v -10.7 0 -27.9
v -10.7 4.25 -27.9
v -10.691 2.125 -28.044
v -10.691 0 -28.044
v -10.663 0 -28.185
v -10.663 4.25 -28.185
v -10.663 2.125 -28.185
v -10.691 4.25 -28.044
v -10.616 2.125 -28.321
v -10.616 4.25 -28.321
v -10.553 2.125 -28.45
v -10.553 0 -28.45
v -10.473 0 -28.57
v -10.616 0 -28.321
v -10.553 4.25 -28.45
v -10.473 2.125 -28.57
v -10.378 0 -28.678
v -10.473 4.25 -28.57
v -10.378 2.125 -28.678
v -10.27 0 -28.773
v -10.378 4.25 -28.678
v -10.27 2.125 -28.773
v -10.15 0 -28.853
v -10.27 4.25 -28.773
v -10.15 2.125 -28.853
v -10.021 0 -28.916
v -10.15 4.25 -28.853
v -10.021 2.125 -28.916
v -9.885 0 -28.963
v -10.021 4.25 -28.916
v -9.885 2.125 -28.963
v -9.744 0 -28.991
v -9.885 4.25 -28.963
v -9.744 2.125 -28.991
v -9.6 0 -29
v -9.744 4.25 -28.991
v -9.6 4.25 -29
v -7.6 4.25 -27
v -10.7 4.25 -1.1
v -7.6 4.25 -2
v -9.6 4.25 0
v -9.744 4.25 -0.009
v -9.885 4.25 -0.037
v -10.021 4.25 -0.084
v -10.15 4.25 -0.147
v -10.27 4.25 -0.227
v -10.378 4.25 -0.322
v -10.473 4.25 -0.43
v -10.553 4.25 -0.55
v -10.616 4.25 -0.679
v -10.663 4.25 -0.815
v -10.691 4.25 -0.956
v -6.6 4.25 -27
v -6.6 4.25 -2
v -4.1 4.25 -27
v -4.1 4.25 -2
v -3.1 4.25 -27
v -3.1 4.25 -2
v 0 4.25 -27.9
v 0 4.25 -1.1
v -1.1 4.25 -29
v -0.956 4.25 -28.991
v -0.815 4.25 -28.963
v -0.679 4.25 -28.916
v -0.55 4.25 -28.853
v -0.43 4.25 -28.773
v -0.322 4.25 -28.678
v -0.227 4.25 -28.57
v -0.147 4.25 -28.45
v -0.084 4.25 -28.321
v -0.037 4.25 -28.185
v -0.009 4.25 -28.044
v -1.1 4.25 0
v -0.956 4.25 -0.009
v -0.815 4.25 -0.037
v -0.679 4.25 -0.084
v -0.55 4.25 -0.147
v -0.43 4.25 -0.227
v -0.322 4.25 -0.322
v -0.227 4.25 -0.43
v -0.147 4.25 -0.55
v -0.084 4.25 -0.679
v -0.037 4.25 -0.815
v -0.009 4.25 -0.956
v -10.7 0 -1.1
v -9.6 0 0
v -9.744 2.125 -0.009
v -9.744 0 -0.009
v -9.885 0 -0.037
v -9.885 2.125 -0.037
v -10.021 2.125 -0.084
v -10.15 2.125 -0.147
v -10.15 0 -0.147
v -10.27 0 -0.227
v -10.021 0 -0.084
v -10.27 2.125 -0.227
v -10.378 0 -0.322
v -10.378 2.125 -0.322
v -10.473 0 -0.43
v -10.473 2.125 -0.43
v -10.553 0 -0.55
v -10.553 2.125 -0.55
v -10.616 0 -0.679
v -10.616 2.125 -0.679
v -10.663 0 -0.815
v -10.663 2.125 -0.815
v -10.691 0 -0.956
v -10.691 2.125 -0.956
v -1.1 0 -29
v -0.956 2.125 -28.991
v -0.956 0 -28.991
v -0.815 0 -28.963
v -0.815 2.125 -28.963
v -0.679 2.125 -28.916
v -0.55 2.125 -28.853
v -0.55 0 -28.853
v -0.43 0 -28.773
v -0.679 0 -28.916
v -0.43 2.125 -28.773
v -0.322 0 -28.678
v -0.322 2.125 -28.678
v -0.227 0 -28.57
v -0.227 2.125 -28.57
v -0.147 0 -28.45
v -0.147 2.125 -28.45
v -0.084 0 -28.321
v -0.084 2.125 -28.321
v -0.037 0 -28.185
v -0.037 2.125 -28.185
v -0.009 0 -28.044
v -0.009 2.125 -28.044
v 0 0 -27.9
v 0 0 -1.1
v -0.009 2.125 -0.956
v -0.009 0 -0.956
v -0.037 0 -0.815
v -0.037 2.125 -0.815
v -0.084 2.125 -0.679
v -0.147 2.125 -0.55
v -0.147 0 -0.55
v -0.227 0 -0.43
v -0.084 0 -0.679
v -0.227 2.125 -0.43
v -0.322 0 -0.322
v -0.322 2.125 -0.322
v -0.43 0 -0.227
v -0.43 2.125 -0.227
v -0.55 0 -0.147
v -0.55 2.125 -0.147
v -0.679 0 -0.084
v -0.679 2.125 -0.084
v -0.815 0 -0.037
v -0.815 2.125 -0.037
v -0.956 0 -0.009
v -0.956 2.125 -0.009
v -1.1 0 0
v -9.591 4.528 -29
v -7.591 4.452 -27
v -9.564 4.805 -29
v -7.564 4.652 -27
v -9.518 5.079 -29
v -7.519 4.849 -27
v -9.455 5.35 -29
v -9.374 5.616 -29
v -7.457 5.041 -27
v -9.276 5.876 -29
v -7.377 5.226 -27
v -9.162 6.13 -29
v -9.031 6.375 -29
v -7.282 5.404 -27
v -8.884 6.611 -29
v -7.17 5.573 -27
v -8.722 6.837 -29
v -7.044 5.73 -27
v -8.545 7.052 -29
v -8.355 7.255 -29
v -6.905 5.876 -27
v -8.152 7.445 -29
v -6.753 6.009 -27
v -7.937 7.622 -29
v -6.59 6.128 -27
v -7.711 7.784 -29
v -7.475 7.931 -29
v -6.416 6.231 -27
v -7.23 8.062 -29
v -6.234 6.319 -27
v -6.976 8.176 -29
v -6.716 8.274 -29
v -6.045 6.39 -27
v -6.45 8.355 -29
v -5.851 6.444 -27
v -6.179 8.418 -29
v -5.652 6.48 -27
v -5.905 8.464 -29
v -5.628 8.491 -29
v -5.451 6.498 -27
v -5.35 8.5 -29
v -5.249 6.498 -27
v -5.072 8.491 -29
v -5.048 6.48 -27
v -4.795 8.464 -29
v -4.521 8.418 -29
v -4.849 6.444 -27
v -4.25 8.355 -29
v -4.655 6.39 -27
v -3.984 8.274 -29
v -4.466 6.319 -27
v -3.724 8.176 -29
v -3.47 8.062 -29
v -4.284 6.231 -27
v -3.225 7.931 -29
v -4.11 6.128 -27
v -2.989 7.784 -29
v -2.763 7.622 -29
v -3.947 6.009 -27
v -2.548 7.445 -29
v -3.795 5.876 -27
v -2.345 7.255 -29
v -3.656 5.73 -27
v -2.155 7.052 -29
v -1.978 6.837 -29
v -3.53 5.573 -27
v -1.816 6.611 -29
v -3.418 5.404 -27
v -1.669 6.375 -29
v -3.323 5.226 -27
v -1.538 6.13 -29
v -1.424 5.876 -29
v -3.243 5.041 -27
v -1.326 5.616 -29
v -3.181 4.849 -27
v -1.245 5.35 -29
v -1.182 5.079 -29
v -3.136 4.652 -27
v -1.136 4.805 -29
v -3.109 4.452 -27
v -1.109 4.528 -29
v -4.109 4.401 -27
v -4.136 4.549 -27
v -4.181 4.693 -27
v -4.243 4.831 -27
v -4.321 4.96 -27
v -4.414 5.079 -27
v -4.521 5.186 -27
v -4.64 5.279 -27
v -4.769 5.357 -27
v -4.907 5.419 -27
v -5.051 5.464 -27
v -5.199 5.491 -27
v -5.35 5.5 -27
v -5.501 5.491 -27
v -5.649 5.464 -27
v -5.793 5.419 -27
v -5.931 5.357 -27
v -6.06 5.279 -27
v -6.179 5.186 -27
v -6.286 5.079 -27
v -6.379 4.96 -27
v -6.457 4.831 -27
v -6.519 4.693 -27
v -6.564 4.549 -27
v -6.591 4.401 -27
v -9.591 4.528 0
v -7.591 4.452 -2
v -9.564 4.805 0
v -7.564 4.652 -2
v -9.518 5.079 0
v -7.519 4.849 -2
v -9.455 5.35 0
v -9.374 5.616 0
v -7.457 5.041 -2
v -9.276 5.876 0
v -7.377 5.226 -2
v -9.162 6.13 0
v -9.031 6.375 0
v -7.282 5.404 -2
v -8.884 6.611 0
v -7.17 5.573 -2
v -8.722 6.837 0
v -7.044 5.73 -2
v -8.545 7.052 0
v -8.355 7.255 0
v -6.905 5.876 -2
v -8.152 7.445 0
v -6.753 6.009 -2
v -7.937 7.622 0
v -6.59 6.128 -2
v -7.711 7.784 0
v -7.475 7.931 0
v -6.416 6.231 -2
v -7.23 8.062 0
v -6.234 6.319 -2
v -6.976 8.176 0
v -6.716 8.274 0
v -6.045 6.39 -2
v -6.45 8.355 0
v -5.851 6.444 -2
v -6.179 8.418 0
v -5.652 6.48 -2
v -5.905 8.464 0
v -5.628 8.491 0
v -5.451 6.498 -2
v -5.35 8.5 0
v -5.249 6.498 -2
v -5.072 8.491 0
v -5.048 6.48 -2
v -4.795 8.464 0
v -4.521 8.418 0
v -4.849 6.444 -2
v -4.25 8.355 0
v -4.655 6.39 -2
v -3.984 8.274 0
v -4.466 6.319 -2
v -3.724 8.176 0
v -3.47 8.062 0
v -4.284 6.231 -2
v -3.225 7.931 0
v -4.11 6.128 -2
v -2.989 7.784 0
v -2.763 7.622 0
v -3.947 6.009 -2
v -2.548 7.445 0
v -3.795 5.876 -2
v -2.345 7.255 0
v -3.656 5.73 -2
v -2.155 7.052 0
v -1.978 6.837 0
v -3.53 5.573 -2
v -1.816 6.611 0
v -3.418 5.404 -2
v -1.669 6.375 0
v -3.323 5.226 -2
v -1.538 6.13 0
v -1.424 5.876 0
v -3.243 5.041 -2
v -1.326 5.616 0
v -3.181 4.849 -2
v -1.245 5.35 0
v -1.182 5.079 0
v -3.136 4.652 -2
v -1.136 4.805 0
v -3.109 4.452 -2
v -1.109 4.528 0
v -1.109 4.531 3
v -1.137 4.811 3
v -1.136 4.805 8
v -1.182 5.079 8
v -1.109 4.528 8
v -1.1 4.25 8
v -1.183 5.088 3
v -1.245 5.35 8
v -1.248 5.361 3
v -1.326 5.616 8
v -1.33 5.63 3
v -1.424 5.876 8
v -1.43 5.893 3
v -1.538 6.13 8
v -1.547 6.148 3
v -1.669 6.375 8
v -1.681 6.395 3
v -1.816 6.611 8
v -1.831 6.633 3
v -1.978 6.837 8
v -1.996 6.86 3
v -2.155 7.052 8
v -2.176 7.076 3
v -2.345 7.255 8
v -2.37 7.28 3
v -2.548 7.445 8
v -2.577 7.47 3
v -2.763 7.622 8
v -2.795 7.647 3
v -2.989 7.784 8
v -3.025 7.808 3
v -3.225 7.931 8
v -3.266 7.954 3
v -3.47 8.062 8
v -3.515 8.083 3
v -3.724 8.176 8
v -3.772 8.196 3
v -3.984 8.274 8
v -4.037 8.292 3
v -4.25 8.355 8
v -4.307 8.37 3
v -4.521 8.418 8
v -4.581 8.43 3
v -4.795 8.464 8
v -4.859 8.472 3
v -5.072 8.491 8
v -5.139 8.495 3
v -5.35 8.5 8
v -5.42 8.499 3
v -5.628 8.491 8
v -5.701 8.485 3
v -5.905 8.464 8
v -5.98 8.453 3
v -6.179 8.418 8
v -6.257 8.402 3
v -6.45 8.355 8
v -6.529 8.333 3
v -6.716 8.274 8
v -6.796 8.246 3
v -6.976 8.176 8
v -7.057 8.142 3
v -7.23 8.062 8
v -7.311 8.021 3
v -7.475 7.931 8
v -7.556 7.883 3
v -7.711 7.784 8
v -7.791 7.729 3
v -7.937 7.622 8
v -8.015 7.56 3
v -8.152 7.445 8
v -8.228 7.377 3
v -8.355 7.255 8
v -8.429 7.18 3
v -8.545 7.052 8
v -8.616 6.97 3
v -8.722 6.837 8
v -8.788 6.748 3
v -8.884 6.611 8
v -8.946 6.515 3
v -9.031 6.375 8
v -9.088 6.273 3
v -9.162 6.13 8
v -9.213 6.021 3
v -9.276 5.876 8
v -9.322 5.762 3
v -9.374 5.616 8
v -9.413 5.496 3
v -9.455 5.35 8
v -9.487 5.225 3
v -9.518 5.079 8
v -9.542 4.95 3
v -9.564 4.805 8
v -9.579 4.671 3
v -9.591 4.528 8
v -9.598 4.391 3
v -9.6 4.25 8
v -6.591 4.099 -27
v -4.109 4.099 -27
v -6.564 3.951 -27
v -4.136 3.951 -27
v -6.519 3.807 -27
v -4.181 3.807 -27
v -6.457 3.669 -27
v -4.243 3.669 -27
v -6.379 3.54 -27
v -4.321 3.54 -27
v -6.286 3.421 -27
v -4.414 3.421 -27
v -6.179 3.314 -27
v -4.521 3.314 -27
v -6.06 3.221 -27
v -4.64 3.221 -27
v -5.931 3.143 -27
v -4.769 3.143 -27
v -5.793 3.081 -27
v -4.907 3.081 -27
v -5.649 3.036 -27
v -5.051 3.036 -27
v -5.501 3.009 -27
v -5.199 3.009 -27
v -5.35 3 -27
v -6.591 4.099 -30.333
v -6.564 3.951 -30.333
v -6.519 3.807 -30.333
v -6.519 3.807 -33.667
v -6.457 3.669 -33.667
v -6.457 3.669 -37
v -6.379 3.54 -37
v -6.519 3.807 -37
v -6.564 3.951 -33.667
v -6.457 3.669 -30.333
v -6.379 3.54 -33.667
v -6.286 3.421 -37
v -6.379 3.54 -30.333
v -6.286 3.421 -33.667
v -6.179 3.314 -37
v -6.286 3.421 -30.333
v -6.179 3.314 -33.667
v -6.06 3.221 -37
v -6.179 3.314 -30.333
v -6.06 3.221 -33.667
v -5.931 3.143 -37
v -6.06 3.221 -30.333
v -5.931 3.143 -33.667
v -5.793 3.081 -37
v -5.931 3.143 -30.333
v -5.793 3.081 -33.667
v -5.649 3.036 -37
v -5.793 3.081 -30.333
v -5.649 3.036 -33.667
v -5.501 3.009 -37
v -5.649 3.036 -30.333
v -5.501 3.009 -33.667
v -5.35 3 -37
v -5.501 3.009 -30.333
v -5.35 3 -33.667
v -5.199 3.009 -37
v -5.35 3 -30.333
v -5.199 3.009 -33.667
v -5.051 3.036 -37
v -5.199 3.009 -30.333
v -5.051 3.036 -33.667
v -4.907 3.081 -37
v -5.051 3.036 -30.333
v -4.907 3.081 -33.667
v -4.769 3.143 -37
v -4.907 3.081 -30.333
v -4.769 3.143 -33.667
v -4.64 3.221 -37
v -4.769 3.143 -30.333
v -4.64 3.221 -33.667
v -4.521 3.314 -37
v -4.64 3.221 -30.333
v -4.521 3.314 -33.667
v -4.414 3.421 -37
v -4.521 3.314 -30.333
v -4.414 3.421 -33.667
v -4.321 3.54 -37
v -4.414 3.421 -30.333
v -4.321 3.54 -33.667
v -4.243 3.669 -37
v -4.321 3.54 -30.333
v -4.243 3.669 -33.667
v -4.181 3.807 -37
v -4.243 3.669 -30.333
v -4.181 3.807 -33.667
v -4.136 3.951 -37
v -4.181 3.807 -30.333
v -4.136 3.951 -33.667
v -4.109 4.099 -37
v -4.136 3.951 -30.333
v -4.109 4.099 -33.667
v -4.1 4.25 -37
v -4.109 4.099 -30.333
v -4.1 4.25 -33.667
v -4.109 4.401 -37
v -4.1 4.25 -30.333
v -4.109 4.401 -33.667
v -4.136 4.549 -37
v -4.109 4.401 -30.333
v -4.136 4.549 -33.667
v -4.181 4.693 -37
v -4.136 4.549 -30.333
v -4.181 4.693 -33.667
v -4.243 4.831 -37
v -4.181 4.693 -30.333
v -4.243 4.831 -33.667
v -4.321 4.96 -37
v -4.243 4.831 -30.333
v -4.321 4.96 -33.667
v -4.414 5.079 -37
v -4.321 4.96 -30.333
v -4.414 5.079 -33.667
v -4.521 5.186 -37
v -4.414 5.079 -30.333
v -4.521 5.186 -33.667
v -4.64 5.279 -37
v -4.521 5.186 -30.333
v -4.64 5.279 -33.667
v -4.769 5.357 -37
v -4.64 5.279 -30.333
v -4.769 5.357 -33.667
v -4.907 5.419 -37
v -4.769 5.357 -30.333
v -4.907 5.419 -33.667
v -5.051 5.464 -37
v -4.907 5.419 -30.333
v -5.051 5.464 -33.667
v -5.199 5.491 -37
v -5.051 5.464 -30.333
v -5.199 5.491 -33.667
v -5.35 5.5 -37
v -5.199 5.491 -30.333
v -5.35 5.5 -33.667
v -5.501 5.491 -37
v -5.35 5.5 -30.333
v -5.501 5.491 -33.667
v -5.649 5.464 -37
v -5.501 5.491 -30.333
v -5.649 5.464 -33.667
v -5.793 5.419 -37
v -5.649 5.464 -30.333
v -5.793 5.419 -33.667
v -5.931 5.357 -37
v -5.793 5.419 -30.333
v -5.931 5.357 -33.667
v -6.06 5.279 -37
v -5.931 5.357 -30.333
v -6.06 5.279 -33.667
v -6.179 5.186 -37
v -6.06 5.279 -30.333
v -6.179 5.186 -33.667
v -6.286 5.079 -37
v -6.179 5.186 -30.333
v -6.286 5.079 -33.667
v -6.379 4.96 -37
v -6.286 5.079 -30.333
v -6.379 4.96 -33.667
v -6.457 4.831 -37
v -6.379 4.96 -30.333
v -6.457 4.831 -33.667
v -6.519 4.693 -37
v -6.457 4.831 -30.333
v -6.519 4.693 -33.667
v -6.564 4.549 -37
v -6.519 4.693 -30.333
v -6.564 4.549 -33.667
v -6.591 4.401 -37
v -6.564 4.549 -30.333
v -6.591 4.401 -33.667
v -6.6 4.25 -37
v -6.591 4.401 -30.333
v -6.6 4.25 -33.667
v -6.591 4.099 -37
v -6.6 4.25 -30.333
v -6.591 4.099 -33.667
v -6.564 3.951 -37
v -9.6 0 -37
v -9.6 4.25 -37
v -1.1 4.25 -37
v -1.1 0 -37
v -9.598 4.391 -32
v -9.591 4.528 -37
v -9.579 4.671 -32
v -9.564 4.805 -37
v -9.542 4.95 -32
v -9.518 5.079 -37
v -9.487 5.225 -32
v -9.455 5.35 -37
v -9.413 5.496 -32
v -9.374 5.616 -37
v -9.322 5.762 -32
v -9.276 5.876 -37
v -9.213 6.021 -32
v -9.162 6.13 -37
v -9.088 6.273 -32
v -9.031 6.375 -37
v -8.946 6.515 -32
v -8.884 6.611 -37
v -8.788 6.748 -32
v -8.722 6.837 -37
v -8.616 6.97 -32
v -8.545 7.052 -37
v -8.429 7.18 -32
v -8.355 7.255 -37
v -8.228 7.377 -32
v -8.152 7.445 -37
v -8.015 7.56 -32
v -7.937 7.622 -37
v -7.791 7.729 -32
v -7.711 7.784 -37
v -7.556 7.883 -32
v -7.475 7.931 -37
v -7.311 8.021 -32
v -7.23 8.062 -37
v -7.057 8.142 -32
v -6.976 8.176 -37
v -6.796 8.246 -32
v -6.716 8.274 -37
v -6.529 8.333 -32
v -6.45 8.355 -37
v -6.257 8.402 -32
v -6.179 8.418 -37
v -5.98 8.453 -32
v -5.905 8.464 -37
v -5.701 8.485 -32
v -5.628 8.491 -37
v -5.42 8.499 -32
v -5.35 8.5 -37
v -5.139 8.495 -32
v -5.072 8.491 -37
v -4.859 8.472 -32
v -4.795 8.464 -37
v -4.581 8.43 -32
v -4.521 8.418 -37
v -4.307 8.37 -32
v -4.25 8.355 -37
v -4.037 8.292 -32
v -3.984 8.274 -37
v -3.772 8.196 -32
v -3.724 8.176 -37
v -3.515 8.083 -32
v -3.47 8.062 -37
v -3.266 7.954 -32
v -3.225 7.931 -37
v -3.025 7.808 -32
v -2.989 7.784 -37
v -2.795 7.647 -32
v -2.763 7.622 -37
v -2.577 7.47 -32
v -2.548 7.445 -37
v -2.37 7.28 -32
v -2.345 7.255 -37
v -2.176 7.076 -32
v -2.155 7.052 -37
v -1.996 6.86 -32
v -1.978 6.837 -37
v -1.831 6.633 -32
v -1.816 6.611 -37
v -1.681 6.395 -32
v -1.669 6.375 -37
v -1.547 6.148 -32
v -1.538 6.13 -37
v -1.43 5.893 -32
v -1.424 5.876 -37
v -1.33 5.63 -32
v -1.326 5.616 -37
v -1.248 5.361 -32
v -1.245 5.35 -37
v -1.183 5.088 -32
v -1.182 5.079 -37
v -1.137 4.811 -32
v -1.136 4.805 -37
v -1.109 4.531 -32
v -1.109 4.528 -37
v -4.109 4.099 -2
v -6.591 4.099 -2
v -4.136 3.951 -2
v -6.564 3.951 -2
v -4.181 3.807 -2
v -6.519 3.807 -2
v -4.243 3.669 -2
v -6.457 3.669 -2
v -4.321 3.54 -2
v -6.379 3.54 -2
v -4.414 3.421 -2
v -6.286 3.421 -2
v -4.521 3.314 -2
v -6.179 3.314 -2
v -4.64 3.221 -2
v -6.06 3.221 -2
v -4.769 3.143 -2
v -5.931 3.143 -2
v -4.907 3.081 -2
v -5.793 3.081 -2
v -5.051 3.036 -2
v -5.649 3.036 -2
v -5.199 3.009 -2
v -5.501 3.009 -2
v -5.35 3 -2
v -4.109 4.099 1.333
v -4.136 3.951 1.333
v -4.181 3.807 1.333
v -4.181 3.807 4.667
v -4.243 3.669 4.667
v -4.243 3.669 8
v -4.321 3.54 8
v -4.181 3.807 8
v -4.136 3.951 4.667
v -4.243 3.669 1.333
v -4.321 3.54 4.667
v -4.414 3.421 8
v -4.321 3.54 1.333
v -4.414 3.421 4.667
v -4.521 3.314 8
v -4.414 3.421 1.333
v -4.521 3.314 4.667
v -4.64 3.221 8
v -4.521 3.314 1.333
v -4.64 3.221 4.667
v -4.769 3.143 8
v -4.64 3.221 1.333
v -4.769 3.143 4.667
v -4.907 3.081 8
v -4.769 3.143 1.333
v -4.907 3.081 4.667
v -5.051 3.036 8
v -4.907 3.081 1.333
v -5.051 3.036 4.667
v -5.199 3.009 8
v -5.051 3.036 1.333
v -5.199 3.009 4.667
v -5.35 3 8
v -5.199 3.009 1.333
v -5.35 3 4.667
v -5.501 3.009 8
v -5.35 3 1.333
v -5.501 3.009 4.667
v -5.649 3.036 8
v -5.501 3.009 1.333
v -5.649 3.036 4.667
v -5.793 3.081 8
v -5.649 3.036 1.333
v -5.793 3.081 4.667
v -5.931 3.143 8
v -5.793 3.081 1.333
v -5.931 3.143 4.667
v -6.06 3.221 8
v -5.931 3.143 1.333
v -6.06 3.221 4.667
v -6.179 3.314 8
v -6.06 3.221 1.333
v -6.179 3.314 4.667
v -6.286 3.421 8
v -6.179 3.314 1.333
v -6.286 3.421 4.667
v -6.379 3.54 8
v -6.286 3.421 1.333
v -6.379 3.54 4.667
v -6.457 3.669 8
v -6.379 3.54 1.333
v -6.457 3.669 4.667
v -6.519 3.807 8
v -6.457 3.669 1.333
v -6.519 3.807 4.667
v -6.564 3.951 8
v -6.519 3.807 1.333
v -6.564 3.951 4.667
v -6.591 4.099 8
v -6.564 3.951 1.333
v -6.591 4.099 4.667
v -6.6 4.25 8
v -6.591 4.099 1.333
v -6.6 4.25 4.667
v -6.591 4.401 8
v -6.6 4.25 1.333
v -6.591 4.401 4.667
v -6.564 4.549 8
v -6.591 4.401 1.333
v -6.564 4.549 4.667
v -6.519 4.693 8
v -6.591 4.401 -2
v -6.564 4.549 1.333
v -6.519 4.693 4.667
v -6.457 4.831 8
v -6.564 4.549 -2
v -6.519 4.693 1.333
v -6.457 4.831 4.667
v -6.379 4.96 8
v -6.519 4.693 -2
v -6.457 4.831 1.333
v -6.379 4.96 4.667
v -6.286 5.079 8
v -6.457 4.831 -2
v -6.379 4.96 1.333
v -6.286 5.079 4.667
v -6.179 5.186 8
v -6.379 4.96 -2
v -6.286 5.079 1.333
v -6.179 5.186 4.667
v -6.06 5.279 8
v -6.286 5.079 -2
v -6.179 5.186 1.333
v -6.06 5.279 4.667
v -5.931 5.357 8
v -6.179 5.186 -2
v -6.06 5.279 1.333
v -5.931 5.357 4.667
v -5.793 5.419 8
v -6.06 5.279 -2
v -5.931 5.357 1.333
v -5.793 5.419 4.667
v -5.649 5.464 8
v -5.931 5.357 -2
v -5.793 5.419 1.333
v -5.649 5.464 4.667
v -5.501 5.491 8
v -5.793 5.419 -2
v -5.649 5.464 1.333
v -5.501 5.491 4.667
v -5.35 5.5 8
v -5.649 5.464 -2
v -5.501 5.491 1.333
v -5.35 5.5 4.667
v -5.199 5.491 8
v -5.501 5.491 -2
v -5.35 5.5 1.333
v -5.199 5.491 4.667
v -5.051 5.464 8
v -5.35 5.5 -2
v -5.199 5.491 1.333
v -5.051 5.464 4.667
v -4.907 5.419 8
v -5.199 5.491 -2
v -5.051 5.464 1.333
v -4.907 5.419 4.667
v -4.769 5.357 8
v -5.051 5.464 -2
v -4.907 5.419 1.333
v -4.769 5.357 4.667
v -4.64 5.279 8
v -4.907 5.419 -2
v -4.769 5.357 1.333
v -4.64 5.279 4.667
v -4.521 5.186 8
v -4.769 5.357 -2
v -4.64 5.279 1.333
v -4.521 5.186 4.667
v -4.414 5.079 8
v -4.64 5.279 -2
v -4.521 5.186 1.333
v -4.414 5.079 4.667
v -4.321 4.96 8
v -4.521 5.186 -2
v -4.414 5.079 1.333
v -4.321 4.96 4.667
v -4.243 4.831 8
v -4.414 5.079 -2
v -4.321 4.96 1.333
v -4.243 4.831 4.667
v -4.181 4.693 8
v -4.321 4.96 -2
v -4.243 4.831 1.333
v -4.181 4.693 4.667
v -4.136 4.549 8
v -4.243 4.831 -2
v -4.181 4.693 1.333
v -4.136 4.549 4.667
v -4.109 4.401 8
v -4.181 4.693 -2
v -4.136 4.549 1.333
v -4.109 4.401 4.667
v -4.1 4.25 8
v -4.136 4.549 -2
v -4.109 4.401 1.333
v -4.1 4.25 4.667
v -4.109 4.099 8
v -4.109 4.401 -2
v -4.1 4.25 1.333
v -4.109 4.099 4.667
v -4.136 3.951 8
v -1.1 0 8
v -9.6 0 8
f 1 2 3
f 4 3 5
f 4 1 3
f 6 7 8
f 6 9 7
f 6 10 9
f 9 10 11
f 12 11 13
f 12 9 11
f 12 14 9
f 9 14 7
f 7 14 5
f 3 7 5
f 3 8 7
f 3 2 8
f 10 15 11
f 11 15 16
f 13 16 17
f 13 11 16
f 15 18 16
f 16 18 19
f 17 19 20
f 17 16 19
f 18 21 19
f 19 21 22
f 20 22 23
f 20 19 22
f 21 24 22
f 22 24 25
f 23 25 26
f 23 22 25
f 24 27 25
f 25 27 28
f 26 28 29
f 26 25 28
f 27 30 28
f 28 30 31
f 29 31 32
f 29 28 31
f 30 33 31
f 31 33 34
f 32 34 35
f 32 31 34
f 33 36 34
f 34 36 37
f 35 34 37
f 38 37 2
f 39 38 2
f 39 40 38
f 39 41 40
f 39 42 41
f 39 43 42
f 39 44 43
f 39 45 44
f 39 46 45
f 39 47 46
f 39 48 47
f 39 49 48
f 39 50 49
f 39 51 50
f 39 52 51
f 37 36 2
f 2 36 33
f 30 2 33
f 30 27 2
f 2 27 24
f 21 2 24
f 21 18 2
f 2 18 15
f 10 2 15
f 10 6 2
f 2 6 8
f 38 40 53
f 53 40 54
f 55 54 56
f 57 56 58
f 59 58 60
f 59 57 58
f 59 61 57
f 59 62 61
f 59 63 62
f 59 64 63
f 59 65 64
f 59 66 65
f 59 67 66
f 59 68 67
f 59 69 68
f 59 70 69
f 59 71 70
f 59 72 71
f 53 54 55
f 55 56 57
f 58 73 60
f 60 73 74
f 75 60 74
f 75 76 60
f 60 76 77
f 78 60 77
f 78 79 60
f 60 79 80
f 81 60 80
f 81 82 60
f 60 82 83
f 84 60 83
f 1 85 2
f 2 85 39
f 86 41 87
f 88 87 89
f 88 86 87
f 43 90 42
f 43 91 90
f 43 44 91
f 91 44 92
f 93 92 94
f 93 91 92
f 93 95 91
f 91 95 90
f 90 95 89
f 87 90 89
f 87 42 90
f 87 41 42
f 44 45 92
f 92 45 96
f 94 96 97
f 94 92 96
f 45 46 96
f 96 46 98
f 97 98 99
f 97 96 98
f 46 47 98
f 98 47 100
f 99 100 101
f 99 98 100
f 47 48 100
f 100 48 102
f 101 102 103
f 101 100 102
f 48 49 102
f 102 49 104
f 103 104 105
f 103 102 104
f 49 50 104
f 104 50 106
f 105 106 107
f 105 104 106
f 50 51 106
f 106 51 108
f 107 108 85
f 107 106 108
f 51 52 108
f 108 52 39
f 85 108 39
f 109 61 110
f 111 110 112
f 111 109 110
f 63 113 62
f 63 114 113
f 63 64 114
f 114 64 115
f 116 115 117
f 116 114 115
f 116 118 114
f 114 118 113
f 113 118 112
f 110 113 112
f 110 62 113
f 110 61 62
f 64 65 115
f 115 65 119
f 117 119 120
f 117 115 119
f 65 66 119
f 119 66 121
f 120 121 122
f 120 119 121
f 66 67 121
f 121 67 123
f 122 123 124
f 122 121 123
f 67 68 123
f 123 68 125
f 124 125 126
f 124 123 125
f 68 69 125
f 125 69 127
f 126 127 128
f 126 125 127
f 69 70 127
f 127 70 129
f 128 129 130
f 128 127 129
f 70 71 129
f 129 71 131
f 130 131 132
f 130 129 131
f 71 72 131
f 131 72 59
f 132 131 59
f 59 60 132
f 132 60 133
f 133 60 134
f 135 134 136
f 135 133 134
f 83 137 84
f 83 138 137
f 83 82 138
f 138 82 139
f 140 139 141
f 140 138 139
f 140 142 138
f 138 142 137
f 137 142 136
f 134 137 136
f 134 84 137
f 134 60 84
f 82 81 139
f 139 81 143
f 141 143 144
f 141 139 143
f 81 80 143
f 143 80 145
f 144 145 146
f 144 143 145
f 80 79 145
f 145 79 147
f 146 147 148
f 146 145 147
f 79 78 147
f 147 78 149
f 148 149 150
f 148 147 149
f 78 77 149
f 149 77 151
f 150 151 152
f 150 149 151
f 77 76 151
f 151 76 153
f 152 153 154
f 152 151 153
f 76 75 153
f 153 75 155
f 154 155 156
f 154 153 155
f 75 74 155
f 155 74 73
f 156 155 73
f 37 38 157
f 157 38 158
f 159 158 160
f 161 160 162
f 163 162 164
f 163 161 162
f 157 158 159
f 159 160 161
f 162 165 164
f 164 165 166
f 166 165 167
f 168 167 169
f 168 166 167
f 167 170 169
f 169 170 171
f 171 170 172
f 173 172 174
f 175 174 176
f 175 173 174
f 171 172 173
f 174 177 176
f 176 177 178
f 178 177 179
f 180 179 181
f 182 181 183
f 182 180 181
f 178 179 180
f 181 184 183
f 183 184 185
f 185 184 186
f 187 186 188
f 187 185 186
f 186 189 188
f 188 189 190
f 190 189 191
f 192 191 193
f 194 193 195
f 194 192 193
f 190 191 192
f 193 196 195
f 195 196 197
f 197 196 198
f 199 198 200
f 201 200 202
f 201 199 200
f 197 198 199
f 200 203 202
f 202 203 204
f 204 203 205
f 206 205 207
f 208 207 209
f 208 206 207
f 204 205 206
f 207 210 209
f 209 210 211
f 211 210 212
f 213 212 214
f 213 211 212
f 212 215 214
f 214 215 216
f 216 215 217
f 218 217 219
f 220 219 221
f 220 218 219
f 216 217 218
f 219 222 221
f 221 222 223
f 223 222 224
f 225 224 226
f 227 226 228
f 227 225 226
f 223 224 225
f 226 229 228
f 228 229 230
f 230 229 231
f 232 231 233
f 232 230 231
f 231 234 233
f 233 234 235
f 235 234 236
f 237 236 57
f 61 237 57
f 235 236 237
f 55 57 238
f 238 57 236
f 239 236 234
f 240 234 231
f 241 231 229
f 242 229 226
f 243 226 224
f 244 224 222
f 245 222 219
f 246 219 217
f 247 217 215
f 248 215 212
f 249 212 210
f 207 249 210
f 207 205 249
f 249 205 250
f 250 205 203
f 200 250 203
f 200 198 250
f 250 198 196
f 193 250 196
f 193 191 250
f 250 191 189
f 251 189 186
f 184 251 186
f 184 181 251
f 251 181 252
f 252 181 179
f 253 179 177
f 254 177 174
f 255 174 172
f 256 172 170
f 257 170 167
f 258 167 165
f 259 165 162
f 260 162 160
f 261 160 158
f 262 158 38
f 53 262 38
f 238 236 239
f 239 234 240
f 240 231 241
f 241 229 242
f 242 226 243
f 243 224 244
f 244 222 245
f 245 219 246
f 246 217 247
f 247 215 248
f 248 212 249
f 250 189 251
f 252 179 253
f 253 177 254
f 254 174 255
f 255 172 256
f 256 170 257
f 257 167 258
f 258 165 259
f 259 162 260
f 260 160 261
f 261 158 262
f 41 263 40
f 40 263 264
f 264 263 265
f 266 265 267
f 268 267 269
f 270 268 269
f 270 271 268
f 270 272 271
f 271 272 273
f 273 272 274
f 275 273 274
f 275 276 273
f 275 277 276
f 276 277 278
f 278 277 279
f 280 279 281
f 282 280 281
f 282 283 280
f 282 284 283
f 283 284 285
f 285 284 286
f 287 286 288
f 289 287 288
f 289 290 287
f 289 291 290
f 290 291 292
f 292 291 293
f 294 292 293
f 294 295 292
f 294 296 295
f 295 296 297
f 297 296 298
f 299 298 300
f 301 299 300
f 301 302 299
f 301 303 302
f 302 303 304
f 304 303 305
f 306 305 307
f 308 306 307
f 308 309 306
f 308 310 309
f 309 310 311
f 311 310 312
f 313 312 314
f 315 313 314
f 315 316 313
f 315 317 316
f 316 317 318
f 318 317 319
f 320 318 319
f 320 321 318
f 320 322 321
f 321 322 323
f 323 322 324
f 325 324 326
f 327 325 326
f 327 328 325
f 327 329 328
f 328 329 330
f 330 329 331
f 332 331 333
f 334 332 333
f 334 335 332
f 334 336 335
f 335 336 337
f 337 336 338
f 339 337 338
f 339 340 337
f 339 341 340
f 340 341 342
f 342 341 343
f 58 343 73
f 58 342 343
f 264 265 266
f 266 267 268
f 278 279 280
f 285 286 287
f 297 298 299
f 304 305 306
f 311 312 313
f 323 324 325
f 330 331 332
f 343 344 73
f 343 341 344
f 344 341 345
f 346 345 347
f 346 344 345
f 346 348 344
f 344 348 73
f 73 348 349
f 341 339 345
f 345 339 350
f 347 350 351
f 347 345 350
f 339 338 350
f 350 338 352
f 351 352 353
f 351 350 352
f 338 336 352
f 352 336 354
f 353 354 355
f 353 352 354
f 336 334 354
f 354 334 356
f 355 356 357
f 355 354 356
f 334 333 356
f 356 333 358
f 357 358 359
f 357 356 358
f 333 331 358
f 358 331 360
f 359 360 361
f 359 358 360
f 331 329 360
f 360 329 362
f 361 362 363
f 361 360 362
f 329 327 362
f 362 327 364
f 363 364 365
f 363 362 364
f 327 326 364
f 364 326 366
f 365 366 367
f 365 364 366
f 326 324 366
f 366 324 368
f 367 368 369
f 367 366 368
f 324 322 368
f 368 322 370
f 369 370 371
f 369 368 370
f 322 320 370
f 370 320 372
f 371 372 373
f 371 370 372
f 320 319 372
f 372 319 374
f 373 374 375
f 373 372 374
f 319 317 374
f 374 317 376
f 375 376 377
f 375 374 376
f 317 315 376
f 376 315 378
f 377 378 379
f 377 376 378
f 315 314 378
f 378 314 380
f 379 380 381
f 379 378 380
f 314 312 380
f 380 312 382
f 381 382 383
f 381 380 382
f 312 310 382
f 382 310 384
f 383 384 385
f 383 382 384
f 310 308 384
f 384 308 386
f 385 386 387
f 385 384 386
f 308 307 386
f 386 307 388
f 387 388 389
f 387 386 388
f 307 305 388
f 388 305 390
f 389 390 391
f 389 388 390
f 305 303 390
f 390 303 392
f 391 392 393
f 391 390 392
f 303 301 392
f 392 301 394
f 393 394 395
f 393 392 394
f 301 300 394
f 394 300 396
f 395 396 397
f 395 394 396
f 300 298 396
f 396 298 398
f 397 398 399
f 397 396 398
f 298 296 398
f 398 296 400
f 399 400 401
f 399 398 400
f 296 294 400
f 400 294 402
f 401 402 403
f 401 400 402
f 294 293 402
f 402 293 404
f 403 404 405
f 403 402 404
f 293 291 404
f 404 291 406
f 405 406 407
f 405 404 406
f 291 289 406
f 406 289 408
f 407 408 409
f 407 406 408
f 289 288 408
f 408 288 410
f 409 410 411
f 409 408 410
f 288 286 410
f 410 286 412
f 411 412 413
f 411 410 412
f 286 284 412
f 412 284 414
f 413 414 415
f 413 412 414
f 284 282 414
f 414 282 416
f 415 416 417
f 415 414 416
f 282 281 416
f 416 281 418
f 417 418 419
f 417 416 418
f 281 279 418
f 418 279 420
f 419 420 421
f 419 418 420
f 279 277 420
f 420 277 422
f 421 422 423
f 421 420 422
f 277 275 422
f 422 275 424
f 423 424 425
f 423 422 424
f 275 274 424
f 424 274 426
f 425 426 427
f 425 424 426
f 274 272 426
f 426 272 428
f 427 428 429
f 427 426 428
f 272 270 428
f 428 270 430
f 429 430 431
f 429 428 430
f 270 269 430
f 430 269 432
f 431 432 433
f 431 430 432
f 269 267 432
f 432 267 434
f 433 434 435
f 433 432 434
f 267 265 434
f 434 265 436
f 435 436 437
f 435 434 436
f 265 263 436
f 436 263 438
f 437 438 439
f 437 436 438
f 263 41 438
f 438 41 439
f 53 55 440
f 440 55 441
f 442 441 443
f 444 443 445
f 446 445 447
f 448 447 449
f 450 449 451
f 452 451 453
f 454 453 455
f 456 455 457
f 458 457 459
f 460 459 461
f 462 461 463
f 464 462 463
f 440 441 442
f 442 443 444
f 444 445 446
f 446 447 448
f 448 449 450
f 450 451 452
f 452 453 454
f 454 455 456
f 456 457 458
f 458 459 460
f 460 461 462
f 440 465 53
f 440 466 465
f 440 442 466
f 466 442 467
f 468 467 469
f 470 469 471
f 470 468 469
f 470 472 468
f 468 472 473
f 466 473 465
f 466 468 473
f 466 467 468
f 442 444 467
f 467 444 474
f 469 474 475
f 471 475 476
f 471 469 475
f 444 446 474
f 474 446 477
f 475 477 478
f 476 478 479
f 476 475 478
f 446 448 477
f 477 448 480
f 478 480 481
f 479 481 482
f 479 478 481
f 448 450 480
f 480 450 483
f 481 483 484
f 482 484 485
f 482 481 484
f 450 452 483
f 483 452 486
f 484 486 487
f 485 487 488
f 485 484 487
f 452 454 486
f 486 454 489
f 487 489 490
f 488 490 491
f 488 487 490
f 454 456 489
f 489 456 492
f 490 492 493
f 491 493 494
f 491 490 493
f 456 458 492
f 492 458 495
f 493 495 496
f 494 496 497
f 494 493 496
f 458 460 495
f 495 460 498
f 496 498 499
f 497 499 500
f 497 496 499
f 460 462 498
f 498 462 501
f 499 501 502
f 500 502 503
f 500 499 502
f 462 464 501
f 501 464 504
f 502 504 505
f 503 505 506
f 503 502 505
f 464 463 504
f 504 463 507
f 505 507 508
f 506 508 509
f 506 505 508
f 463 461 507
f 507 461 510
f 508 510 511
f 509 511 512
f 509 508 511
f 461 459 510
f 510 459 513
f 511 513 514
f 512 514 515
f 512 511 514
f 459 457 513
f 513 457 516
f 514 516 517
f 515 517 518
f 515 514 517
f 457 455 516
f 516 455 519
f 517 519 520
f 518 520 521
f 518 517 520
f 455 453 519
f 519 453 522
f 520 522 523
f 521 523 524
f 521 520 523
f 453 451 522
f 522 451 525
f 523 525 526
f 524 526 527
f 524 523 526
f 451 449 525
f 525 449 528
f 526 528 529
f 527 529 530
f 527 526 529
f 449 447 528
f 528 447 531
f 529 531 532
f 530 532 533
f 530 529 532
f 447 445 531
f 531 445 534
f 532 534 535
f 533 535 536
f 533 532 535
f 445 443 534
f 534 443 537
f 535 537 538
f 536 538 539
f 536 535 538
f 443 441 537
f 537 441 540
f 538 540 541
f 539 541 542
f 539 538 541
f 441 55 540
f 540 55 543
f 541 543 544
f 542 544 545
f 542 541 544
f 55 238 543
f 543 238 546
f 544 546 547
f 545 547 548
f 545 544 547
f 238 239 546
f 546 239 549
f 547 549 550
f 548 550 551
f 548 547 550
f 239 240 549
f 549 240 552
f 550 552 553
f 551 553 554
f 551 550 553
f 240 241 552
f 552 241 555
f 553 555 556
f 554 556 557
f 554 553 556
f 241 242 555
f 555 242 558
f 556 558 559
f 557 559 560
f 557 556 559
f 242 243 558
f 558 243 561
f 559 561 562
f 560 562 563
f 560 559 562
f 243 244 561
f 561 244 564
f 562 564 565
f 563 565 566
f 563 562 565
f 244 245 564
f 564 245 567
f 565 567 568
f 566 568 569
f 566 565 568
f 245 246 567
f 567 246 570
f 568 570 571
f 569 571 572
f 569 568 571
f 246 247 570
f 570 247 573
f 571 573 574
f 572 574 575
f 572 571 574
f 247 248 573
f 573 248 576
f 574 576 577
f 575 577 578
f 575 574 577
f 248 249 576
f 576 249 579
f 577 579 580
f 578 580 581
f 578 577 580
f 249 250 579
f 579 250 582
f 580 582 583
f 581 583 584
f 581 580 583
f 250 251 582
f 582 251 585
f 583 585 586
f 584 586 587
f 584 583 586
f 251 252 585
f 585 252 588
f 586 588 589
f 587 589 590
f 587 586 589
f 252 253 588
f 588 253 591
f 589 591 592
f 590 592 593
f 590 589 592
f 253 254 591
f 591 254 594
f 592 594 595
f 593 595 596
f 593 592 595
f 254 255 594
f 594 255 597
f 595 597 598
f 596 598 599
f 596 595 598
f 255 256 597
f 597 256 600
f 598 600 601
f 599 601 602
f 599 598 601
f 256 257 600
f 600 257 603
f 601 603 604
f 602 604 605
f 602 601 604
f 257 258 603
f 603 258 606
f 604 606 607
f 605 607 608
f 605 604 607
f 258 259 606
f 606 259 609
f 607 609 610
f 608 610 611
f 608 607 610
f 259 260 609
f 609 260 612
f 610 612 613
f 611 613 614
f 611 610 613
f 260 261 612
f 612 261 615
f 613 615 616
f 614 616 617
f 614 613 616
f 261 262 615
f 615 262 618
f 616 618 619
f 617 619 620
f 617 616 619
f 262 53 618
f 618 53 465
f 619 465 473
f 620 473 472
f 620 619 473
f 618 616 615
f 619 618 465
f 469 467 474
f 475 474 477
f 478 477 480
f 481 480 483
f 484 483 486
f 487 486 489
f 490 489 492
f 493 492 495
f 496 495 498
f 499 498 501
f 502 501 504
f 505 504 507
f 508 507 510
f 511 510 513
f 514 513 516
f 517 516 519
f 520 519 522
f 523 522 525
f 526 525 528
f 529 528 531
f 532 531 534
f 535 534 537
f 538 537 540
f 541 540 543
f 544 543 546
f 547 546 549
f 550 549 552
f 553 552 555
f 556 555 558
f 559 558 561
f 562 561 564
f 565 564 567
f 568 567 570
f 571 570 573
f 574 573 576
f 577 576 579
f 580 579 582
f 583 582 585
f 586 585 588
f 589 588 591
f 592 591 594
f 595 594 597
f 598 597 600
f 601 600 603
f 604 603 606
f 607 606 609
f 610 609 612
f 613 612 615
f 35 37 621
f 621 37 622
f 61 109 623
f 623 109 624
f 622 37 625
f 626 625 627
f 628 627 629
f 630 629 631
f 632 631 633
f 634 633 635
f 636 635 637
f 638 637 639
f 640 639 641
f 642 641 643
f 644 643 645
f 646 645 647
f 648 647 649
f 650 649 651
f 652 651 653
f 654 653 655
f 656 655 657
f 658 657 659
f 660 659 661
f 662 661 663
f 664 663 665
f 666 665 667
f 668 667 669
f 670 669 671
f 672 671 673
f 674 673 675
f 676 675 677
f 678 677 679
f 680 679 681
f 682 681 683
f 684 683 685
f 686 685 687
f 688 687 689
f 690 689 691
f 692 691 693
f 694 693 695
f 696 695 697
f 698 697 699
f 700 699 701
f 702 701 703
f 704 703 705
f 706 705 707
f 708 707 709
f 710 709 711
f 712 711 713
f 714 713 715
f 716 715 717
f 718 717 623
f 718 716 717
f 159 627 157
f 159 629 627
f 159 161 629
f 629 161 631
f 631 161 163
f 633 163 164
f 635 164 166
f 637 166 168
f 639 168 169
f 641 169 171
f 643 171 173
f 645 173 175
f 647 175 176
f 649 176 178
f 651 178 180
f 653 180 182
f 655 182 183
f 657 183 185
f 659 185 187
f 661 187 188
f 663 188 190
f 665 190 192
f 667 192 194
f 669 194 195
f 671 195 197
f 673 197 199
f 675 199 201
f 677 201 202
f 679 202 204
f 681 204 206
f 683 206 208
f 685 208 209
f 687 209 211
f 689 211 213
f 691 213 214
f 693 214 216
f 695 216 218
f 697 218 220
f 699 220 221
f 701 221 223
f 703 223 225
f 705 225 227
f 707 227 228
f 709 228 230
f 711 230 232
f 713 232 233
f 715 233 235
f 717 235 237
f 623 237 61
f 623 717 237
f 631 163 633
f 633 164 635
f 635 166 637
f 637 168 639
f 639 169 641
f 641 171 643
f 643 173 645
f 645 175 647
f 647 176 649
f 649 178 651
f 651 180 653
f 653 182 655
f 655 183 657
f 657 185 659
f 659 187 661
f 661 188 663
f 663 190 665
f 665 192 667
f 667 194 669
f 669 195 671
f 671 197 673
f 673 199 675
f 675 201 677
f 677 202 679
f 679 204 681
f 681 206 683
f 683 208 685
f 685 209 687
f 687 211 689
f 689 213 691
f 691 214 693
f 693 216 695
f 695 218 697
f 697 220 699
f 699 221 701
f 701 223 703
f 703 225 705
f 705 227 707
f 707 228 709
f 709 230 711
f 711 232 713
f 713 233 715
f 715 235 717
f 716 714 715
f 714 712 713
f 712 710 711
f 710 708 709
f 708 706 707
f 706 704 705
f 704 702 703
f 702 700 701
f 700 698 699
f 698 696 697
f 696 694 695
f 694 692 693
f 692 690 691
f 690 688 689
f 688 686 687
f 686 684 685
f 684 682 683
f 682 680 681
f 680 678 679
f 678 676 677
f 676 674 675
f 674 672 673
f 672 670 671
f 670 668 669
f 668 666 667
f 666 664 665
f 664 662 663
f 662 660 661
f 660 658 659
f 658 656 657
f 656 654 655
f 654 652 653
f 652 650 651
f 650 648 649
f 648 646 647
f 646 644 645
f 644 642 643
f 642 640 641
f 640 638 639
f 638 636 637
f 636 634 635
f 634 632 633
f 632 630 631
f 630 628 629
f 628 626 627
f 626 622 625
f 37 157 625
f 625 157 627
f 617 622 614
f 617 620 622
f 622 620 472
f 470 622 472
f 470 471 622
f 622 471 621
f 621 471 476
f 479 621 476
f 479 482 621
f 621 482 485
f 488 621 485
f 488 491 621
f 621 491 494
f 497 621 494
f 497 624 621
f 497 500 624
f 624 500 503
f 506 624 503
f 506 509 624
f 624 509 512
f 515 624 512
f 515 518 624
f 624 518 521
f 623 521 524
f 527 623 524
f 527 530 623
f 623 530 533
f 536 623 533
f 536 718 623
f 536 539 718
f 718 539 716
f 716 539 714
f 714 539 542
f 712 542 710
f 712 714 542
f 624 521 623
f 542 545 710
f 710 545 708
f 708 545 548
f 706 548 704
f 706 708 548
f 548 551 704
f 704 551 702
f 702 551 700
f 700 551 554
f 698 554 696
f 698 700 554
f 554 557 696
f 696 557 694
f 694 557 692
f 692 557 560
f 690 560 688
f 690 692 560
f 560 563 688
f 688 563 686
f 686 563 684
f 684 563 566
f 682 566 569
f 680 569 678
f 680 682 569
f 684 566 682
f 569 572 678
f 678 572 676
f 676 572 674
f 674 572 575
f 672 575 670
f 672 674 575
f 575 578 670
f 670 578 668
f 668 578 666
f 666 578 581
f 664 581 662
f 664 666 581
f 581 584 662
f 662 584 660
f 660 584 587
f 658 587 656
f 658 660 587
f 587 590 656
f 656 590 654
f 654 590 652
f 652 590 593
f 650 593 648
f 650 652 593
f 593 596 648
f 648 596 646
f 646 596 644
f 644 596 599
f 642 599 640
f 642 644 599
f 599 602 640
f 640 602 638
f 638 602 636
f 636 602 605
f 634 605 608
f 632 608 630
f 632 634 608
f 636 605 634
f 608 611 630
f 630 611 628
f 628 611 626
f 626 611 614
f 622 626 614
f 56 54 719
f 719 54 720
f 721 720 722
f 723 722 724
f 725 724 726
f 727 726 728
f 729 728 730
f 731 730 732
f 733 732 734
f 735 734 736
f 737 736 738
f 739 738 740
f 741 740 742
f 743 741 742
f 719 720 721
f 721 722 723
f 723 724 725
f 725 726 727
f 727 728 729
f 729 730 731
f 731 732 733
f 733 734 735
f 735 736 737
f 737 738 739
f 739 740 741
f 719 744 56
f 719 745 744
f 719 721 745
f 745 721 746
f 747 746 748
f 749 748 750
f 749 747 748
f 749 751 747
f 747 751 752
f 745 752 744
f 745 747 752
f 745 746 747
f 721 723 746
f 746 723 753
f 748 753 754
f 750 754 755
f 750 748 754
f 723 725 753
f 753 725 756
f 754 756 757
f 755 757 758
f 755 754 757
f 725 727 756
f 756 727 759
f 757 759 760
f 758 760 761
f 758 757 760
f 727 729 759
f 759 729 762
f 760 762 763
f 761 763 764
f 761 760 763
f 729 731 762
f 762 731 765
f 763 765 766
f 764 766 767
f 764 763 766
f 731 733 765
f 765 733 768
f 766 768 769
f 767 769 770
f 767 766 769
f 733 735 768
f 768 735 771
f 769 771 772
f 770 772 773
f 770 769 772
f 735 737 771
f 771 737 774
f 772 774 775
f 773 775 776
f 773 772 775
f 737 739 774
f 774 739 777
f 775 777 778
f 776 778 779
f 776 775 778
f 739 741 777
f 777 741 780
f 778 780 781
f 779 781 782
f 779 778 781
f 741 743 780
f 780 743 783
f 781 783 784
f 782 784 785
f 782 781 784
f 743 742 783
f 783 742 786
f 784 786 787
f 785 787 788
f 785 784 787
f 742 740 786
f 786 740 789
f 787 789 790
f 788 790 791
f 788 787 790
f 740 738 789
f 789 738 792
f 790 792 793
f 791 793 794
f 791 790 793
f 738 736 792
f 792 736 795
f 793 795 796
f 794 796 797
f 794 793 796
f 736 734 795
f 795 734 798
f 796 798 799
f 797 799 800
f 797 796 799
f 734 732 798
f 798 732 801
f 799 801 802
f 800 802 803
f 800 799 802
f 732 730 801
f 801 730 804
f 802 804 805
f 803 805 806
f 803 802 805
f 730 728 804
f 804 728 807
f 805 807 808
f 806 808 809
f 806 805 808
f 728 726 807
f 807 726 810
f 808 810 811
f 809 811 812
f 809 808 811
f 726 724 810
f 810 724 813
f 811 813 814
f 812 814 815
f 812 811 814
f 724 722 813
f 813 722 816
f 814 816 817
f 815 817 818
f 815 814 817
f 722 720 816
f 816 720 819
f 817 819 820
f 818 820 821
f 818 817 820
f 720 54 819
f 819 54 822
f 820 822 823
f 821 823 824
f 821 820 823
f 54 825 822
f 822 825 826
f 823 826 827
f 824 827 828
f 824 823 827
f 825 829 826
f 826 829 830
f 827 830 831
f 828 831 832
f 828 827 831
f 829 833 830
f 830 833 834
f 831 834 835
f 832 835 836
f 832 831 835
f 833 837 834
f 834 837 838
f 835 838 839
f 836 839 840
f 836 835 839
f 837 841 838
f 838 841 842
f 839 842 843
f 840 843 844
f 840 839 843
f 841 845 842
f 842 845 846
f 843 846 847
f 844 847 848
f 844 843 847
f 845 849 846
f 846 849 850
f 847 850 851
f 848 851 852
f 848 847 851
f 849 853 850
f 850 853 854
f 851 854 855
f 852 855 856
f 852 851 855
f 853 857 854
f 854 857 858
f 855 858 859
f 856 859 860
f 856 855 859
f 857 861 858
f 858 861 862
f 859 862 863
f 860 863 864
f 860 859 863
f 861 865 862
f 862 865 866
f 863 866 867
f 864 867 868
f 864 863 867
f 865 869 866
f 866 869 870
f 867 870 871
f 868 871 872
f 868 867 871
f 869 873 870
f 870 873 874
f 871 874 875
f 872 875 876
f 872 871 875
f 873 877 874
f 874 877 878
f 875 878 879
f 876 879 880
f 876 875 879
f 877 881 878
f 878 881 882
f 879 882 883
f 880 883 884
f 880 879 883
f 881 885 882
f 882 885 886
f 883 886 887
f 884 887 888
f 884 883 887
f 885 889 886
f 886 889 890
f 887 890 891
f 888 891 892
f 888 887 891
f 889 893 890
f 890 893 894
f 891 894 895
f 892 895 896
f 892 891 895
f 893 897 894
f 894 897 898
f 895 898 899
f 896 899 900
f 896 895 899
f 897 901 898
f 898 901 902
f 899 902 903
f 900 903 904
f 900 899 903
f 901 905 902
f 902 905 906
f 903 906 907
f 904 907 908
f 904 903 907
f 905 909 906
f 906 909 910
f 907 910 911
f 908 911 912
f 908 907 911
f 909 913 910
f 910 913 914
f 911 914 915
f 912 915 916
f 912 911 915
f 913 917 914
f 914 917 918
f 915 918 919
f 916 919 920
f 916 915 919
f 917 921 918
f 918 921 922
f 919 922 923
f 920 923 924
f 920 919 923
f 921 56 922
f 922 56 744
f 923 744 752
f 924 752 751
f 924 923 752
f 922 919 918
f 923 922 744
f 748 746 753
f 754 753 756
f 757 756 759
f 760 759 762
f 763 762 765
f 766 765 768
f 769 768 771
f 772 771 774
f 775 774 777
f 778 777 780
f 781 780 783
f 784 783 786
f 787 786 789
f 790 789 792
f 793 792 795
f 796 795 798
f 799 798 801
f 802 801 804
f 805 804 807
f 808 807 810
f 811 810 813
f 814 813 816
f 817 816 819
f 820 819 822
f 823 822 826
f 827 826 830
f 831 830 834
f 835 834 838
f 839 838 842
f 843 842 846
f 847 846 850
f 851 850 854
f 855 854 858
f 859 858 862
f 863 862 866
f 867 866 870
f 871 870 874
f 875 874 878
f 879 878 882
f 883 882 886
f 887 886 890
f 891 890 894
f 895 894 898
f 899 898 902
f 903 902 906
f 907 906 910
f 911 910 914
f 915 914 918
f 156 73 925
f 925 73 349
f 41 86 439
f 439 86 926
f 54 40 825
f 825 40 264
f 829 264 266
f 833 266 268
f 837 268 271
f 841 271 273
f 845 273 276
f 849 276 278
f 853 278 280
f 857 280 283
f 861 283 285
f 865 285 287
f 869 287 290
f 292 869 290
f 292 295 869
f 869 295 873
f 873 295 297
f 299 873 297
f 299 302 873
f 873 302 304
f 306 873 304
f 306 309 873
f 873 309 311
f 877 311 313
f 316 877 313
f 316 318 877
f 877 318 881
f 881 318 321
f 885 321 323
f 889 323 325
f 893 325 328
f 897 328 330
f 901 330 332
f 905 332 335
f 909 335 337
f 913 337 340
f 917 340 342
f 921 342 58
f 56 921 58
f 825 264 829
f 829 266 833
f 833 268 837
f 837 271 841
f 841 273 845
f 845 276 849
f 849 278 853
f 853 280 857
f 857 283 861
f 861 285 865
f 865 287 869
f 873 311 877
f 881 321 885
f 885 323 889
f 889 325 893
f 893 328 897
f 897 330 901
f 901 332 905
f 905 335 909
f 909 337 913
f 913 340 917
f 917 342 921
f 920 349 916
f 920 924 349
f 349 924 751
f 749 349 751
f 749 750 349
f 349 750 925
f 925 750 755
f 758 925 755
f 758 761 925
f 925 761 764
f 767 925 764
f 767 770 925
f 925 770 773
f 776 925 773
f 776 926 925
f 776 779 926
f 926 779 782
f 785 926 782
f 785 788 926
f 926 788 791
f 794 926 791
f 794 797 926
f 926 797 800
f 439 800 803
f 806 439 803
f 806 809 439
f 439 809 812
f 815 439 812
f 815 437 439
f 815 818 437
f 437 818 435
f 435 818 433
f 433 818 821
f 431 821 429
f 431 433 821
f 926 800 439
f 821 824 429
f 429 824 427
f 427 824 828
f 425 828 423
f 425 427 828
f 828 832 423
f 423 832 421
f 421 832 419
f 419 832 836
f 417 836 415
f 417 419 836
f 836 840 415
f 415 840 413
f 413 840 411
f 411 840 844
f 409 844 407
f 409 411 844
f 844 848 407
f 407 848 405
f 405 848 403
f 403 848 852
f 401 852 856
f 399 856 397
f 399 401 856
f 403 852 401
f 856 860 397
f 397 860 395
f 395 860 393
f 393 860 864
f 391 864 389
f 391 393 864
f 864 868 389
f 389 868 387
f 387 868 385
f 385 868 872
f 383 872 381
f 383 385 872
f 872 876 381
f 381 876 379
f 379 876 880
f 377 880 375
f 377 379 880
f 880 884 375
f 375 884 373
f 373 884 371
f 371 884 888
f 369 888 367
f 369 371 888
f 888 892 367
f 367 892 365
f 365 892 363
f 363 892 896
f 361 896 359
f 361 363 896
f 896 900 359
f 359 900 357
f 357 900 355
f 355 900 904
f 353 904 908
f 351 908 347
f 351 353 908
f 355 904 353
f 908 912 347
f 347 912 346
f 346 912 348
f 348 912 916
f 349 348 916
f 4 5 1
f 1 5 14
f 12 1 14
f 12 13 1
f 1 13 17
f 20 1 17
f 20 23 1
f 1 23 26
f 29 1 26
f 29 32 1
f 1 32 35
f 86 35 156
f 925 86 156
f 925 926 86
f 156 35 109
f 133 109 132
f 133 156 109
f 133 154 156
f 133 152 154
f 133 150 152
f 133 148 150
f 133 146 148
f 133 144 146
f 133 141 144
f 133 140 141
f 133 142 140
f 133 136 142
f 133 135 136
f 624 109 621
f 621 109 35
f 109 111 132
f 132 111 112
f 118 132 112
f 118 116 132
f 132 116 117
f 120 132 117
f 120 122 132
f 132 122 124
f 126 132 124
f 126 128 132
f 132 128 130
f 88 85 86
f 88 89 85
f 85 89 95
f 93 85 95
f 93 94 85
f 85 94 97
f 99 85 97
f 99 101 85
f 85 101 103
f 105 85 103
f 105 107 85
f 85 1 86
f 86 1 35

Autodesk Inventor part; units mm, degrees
ref_plane "YZ Plane" through (0, 0, 0) normal (1, 0, 0) x (0, 1, 0)
ref_plane "XZ Plane" through (0, 0, 0) normal (0, 1, 0) x (-1, 0, 0)
ref_plane "XY Plane" through (0, 0, 0) normal (0, 0, 1) x (1, 0, 0)
sketch "Sketch1" plane through (0, 0, 0) normal (0, 1, 0) x (-1, 0, 0)
  line L0 (0, 0) -> (1.1, 0)
  line L1 (1.1, 0) -> (1.1, -2)
  line L2 (1.1, -2) -> (9.6, -2)
  line L3 (9.6, -2) -> (9.6, 0)
  line L4 (9.6, 0) -> (10.7, 0)
  line L5 (10.7, 0) -> (10.7, -29)
  line L6 (10.7, -29) -> (9.6, -29)
  line L7 (9.6, -29) -> (9.6, -27)
  line L8 (9.6, -27) -> (1.1, -27)
  line L9 (1.1, -27) -> (1.1, -29)
  line L10 (1.1, -29) -> (0, -29)
  line L11 (0, -29) -> (0, 0)
  dimension "d7" = 8.5
  dimension "d8" = 8.5
  dimension "d9" = 2
  dimension "d10" = 2
  dimension "d11" = 10.7
  dimension "d12" = 1.1
  dimension "d13" = 1.1
  dimension "d14" = 29
extrude "Extrusion1" add sketch "Sketch1" along normal blind 4.25
sketch "Sketch4" plane through (-9.6, 0, -2) normal (0, 0, 1) x (1, 0, 0)
  line L0 (8.5, 4.25) -> (0, 4.25) projected
  line L1 (8.5, 4.25) -> (9.6, 4.25) projected
  arc A0 (8.5, 4.25) -> (0, 4.25) centre (4.25, 4.25) ccw
  point P0 (9.6, 0)
extrude "Extrusion2" add sketch "Sketch4" along normal blind 10
sketch "Sketch5" plane through (-9.6, 0, -2) normal (0, 0, 1) x (1, 0, 0)
  line L0 (0, 0) -> (8.5, 0) projected
  line L1 (9.6, 4.25) -> (8.5, 4.25) projected
  line L2 (0, 0) -> (8.5, 0)
  line L3 (8.5, 0) -> (8.5, 4.25)
  line L4 (8.5, 4.25) -> (0, 4.25)
  line L5 (0, 4.25) -> (0, 0)
  point P0 (9.6, 0)
extrude "Extrusion3" add sketch "Sketch5" along normal blind 10
sketch "Sketch6" plane through (-9.6, 0, 8) normal (0, 0, 1) x (1, 0, 0)
  arc A0 (8.5, 4.25) -> (0, 4.25) centre (4.25, 4.25) ccw projected
  circle A1 centre (4.25, 4.25) radius 1.25
  point P0 (9.6, 0)
  dimension "d24" = 2.5
extrude "Extrusion4" cut sketch "Sketch6" against normal blind 10
sketch "Sketch9" plane through (-1.1, 0, -27) normal (0, 0, -1) x (-1, 0, 0)
  line L0 (0, 4.25) -> (8.5, 4.25) projected
  arc A0 (8.5, 4.25) -> (0, 4.25) centre (4.25, 4.25) ccw
  point P0 (-1.1, 0)
extrude "Extrusion6" add sketch "Sketch9" along normal blind 10
sketch "Sketch10" plane through (-1.1, 0, -27) normal (0, 0, -1) x (-1, 0, 0)
  line L0 (8.5, 4.25) -> (9.6, 4.25) projected
  line L1 (0, 0) -> (8.5, 0)
  line L2 (8.5, 0) -> (8.5, 4.25)
  line L3 (8.5, 4.25) -> (0, 4.25)
  line L4 (0, 4.25) -> (0, 0)
  point P0 (-1.1, 0)
extrude "Extrusion7" add sketch "Sketch10" along normal blind 10
sketch "Sketch11" plane through (-1.1, 0, -37) normal (0, 0, -1) x (-1, 0, 0)
  arc A0 (5.5, 4.25) -> (3, 4.25) centre (4.25, 4.25) ccw projected
  line L0 (8.5, 4.25) -> (5.5, 4.25) projected
  circle A1 centre (4.25, 4.25) radius 1.25
  point P0 (-1.1, 0)
extrude "Extrusion8" cut sketch "Sketch11" against normal blind 10
chamfer "Chamfer1" distance 2 angle 45 1 edges at (-5.35, 8.5, -2)
chamfer "Chamfer2" distance 2 angle 45 1 edges at (-5.35, 8.5, -27)
fillet "Fillet1" radius 1.1 4 edges at (0, 2.125, 0) (0, 2.125, -29) (-10.7, 2.125, 0) (-10.7, 2.125, -29)
properties part number "tracks_center_ver2"
